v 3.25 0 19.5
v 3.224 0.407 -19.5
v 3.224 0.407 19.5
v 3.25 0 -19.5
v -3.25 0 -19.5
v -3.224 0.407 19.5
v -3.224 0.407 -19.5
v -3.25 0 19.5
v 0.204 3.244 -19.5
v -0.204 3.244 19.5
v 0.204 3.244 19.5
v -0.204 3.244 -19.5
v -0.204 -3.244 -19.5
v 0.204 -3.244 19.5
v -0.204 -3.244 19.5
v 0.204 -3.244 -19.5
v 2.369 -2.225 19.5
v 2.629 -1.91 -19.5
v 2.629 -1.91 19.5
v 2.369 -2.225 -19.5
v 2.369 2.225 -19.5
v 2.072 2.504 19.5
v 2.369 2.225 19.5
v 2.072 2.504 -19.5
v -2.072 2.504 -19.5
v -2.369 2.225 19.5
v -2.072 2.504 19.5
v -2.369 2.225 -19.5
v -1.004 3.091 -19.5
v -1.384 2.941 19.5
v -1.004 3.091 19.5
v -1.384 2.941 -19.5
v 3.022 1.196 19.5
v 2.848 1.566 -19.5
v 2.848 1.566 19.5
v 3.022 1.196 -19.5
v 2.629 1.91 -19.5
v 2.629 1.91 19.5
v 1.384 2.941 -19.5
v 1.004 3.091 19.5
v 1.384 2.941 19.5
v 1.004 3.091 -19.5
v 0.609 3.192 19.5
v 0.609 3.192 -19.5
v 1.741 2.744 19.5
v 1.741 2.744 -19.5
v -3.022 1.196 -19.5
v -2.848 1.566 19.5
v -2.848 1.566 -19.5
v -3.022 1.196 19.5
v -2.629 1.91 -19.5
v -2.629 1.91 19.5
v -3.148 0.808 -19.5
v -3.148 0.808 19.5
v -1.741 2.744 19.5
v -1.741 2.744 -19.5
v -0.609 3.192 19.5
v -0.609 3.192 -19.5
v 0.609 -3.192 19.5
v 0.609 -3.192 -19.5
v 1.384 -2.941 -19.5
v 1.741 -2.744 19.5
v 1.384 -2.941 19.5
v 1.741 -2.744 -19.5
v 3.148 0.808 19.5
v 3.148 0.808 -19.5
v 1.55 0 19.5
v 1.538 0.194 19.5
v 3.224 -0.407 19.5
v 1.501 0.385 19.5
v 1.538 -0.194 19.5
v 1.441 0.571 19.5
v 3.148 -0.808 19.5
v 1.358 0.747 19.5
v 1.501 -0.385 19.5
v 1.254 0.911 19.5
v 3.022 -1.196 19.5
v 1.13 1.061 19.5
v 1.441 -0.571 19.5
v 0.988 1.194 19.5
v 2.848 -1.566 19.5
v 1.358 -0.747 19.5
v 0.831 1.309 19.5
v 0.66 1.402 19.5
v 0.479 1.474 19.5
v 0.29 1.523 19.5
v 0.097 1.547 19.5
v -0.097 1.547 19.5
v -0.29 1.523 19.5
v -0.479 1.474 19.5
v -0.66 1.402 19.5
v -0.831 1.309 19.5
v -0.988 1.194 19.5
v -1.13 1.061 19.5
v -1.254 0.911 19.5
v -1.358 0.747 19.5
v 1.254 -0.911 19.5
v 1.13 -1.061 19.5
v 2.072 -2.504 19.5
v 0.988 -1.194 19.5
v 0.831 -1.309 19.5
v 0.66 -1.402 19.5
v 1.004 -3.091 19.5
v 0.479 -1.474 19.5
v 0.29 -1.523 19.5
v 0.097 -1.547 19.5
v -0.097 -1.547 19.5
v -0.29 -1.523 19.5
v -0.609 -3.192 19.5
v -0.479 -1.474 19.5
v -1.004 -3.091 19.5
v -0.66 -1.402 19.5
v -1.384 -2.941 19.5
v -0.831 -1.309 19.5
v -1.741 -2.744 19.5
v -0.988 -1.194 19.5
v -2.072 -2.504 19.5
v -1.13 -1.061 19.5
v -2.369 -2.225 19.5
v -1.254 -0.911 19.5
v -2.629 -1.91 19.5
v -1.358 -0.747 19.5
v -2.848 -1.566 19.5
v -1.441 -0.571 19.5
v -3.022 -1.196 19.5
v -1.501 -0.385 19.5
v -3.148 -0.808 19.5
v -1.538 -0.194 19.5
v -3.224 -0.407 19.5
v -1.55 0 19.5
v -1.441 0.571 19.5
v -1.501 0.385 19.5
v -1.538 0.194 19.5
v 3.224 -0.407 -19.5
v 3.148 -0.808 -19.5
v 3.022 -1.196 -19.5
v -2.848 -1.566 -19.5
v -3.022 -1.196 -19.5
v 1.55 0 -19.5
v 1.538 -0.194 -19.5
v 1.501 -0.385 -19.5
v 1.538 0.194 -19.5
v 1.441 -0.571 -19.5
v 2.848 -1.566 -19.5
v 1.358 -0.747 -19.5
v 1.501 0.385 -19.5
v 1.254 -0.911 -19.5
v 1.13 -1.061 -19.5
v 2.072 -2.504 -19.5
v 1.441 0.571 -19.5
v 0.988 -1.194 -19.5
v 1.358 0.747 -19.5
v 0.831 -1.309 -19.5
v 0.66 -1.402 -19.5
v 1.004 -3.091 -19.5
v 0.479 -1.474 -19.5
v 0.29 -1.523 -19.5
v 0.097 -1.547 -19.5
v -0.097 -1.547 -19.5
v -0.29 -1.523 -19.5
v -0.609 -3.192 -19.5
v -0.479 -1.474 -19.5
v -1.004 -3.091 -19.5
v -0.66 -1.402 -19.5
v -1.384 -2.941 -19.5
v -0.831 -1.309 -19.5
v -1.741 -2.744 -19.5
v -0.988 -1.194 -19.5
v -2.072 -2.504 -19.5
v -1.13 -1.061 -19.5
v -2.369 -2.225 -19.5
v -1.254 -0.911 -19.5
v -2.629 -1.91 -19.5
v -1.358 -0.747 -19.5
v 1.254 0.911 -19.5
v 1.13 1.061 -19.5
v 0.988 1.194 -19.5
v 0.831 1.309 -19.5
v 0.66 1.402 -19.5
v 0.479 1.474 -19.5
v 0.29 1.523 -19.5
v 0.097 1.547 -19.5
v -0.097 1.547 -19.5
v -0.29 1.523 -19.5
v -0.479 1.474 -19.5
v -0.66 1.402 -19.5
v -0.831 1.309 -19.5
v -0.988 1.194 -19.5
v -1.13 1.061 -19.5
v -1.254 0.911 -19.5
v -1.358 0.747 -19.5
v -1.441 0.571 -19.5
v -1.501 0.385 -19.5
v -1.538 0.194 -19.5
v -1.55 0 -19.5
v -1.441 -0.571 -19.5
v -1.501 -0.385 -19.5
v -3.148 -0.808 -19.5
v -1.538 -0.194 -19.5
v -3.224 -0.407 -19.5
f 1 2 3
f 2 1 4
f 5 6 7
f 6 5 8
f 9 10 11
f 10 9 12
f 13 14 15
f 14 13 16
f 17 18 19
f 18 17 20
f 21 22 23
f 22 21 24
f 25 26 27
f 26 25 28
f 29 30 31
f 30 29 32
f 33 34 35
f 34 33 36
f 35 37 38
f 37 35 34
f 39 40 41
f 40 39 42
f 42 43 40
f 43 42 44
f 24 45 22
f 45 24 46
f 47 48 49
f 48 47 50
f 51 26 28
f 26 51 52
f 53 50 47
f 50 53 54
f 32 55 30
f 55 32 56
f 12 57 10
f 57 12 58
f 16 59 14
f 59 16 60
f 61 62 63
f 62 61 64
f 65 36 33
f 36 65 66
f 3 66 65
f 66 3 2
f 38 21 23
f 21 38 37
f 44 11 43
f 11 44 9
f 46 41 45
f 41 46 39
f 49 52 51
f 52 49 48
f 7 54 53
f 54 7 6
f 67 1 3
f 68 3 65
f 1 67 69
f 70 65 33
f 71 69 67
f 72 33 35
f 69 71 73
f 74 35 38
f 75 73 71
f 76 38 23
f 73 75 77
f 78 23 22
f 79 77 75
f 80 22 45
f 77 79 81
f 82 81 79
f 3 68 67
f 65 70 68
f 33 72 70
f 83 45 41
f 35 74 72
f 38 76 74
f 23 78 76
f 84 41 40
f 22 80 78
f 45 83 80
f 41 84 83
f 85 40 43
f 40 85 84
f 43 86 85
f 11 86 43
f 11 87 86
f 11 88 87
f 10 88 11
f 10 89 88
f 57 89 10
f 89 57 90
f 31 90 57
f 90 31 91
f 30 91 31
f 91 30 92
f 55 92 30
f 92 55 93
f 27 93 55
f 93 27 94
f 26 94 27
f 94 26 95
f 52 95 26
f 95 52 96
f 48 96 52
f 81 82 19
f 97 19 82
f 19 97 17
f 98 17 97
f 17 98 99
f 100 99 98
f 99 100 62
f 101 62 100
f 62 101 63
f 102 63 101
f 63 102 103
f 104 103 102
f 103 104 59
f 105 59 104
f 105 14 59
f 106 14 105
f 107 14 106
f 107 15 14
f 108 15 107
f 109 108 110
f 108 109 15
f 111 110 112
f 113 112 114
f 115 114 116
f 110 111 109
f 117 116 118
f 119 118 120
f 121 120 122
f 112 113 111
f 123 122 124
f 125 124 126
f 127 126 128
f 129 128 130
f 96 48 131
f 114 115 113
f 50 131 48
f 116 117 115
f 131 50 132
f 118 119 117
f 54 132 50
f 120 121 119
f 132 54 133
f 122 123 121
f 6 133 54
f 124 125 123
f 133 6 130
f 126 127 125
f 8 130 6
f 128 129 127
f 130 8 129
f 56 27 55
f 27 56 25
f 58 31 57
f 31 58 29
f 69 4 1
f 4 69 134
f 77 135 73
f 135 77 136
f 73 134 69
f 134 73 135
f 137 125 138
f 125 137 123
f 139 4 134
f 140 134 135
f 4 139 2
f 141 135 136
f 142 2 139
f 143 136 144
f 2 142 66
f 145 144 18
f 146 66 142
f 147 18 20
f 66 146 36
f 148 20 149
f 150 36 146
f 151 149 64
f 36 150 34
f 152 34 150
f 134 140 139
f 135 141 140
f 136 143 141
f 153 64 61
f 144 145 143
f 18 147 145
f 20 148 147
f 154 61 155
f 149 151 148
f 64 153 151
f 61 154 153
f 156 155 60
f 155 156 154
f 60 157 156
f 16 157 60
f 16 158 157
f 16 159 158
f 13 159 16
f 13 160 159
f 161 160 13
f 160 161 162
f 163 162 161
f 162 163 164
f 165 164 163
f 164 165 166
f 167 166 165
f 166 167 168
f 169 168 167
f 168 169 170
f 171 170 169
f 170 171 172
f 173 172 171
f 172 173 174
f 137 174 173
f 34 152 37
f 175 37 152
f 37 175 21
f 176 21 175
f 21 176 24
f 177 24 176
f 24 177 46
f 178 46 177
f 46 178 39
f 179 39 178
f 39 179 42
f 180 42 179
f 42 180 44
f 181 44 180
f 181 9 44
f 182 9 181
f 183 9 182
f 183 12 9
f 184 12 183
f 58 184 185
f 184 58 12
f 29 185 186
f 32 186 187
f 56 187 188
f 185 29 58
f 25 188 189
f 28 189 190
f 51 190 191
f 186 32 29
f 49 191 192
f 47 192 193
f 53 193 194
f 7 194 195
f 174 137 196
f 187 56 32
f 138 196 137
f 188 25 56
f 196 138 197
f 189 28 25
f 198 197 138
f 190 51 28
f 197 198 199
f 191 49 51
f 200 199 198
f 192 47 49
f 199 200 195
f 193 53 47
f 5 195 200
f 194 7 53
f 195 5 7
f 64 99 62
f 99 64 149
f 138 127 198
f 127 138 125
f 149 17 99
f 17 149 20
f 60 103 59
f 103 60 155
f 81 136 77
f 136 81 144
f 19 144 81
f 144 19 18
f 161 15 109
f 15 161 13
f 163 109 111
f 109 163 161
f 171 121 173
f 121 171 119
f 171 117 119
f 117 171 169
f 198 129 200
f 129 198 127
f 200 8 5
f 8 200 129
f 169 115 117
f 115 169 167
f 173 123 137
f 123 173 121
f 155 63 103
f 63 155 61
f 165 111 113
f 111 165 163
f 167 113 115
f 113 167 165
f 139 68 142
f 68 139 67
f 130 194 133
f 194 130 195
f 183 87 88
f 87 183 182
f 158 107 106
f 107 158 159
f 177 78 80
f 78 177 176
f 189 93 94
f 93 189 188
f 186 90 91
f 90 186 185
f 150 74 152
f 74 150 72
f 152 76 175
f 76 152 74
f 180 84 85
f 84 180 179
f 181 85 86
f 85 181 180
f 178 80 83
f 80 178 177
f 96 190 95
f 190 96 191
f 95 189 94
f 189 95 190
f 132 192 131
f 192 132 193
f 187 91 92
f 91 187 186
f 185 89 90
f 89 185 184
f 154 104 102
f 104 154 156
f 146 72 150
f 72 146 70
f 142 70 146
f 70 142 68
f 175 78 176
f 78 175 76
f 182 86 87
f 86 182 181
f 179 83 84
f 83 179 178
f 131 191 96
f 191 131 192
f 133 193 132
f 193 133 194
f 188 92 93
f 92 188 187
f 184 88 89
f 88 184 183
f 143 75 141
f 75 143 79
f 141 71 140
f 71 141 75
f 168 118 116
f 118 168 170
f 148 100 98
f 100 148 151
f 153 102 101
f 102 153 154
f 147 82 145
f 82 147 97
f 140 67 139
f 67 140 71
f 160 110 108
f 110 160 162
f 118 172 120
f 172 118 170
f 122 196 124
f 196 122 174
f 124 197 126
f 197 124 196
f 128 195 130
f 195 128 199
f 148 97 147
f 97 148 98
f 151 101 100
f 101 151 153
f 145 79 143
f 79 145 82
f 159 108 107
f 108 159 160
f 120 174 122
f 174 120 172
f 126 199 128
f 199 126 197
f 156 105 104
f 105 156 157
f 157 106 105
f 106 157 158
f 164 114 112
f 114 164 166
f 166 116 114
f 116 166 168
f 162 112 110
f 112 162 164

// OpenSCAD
$fn = 50;


difference() {
	union() {
		translate(v = [0, 0, -19.5000000000]) {
			cylinder(h = 39, r = 3.2500000000);
		}
	}
	union() {
		translate(v = [0, 0, -100.0000000000]) {
			cylinder(h = 200, r = 1.5500000000);
		}
	}
}
